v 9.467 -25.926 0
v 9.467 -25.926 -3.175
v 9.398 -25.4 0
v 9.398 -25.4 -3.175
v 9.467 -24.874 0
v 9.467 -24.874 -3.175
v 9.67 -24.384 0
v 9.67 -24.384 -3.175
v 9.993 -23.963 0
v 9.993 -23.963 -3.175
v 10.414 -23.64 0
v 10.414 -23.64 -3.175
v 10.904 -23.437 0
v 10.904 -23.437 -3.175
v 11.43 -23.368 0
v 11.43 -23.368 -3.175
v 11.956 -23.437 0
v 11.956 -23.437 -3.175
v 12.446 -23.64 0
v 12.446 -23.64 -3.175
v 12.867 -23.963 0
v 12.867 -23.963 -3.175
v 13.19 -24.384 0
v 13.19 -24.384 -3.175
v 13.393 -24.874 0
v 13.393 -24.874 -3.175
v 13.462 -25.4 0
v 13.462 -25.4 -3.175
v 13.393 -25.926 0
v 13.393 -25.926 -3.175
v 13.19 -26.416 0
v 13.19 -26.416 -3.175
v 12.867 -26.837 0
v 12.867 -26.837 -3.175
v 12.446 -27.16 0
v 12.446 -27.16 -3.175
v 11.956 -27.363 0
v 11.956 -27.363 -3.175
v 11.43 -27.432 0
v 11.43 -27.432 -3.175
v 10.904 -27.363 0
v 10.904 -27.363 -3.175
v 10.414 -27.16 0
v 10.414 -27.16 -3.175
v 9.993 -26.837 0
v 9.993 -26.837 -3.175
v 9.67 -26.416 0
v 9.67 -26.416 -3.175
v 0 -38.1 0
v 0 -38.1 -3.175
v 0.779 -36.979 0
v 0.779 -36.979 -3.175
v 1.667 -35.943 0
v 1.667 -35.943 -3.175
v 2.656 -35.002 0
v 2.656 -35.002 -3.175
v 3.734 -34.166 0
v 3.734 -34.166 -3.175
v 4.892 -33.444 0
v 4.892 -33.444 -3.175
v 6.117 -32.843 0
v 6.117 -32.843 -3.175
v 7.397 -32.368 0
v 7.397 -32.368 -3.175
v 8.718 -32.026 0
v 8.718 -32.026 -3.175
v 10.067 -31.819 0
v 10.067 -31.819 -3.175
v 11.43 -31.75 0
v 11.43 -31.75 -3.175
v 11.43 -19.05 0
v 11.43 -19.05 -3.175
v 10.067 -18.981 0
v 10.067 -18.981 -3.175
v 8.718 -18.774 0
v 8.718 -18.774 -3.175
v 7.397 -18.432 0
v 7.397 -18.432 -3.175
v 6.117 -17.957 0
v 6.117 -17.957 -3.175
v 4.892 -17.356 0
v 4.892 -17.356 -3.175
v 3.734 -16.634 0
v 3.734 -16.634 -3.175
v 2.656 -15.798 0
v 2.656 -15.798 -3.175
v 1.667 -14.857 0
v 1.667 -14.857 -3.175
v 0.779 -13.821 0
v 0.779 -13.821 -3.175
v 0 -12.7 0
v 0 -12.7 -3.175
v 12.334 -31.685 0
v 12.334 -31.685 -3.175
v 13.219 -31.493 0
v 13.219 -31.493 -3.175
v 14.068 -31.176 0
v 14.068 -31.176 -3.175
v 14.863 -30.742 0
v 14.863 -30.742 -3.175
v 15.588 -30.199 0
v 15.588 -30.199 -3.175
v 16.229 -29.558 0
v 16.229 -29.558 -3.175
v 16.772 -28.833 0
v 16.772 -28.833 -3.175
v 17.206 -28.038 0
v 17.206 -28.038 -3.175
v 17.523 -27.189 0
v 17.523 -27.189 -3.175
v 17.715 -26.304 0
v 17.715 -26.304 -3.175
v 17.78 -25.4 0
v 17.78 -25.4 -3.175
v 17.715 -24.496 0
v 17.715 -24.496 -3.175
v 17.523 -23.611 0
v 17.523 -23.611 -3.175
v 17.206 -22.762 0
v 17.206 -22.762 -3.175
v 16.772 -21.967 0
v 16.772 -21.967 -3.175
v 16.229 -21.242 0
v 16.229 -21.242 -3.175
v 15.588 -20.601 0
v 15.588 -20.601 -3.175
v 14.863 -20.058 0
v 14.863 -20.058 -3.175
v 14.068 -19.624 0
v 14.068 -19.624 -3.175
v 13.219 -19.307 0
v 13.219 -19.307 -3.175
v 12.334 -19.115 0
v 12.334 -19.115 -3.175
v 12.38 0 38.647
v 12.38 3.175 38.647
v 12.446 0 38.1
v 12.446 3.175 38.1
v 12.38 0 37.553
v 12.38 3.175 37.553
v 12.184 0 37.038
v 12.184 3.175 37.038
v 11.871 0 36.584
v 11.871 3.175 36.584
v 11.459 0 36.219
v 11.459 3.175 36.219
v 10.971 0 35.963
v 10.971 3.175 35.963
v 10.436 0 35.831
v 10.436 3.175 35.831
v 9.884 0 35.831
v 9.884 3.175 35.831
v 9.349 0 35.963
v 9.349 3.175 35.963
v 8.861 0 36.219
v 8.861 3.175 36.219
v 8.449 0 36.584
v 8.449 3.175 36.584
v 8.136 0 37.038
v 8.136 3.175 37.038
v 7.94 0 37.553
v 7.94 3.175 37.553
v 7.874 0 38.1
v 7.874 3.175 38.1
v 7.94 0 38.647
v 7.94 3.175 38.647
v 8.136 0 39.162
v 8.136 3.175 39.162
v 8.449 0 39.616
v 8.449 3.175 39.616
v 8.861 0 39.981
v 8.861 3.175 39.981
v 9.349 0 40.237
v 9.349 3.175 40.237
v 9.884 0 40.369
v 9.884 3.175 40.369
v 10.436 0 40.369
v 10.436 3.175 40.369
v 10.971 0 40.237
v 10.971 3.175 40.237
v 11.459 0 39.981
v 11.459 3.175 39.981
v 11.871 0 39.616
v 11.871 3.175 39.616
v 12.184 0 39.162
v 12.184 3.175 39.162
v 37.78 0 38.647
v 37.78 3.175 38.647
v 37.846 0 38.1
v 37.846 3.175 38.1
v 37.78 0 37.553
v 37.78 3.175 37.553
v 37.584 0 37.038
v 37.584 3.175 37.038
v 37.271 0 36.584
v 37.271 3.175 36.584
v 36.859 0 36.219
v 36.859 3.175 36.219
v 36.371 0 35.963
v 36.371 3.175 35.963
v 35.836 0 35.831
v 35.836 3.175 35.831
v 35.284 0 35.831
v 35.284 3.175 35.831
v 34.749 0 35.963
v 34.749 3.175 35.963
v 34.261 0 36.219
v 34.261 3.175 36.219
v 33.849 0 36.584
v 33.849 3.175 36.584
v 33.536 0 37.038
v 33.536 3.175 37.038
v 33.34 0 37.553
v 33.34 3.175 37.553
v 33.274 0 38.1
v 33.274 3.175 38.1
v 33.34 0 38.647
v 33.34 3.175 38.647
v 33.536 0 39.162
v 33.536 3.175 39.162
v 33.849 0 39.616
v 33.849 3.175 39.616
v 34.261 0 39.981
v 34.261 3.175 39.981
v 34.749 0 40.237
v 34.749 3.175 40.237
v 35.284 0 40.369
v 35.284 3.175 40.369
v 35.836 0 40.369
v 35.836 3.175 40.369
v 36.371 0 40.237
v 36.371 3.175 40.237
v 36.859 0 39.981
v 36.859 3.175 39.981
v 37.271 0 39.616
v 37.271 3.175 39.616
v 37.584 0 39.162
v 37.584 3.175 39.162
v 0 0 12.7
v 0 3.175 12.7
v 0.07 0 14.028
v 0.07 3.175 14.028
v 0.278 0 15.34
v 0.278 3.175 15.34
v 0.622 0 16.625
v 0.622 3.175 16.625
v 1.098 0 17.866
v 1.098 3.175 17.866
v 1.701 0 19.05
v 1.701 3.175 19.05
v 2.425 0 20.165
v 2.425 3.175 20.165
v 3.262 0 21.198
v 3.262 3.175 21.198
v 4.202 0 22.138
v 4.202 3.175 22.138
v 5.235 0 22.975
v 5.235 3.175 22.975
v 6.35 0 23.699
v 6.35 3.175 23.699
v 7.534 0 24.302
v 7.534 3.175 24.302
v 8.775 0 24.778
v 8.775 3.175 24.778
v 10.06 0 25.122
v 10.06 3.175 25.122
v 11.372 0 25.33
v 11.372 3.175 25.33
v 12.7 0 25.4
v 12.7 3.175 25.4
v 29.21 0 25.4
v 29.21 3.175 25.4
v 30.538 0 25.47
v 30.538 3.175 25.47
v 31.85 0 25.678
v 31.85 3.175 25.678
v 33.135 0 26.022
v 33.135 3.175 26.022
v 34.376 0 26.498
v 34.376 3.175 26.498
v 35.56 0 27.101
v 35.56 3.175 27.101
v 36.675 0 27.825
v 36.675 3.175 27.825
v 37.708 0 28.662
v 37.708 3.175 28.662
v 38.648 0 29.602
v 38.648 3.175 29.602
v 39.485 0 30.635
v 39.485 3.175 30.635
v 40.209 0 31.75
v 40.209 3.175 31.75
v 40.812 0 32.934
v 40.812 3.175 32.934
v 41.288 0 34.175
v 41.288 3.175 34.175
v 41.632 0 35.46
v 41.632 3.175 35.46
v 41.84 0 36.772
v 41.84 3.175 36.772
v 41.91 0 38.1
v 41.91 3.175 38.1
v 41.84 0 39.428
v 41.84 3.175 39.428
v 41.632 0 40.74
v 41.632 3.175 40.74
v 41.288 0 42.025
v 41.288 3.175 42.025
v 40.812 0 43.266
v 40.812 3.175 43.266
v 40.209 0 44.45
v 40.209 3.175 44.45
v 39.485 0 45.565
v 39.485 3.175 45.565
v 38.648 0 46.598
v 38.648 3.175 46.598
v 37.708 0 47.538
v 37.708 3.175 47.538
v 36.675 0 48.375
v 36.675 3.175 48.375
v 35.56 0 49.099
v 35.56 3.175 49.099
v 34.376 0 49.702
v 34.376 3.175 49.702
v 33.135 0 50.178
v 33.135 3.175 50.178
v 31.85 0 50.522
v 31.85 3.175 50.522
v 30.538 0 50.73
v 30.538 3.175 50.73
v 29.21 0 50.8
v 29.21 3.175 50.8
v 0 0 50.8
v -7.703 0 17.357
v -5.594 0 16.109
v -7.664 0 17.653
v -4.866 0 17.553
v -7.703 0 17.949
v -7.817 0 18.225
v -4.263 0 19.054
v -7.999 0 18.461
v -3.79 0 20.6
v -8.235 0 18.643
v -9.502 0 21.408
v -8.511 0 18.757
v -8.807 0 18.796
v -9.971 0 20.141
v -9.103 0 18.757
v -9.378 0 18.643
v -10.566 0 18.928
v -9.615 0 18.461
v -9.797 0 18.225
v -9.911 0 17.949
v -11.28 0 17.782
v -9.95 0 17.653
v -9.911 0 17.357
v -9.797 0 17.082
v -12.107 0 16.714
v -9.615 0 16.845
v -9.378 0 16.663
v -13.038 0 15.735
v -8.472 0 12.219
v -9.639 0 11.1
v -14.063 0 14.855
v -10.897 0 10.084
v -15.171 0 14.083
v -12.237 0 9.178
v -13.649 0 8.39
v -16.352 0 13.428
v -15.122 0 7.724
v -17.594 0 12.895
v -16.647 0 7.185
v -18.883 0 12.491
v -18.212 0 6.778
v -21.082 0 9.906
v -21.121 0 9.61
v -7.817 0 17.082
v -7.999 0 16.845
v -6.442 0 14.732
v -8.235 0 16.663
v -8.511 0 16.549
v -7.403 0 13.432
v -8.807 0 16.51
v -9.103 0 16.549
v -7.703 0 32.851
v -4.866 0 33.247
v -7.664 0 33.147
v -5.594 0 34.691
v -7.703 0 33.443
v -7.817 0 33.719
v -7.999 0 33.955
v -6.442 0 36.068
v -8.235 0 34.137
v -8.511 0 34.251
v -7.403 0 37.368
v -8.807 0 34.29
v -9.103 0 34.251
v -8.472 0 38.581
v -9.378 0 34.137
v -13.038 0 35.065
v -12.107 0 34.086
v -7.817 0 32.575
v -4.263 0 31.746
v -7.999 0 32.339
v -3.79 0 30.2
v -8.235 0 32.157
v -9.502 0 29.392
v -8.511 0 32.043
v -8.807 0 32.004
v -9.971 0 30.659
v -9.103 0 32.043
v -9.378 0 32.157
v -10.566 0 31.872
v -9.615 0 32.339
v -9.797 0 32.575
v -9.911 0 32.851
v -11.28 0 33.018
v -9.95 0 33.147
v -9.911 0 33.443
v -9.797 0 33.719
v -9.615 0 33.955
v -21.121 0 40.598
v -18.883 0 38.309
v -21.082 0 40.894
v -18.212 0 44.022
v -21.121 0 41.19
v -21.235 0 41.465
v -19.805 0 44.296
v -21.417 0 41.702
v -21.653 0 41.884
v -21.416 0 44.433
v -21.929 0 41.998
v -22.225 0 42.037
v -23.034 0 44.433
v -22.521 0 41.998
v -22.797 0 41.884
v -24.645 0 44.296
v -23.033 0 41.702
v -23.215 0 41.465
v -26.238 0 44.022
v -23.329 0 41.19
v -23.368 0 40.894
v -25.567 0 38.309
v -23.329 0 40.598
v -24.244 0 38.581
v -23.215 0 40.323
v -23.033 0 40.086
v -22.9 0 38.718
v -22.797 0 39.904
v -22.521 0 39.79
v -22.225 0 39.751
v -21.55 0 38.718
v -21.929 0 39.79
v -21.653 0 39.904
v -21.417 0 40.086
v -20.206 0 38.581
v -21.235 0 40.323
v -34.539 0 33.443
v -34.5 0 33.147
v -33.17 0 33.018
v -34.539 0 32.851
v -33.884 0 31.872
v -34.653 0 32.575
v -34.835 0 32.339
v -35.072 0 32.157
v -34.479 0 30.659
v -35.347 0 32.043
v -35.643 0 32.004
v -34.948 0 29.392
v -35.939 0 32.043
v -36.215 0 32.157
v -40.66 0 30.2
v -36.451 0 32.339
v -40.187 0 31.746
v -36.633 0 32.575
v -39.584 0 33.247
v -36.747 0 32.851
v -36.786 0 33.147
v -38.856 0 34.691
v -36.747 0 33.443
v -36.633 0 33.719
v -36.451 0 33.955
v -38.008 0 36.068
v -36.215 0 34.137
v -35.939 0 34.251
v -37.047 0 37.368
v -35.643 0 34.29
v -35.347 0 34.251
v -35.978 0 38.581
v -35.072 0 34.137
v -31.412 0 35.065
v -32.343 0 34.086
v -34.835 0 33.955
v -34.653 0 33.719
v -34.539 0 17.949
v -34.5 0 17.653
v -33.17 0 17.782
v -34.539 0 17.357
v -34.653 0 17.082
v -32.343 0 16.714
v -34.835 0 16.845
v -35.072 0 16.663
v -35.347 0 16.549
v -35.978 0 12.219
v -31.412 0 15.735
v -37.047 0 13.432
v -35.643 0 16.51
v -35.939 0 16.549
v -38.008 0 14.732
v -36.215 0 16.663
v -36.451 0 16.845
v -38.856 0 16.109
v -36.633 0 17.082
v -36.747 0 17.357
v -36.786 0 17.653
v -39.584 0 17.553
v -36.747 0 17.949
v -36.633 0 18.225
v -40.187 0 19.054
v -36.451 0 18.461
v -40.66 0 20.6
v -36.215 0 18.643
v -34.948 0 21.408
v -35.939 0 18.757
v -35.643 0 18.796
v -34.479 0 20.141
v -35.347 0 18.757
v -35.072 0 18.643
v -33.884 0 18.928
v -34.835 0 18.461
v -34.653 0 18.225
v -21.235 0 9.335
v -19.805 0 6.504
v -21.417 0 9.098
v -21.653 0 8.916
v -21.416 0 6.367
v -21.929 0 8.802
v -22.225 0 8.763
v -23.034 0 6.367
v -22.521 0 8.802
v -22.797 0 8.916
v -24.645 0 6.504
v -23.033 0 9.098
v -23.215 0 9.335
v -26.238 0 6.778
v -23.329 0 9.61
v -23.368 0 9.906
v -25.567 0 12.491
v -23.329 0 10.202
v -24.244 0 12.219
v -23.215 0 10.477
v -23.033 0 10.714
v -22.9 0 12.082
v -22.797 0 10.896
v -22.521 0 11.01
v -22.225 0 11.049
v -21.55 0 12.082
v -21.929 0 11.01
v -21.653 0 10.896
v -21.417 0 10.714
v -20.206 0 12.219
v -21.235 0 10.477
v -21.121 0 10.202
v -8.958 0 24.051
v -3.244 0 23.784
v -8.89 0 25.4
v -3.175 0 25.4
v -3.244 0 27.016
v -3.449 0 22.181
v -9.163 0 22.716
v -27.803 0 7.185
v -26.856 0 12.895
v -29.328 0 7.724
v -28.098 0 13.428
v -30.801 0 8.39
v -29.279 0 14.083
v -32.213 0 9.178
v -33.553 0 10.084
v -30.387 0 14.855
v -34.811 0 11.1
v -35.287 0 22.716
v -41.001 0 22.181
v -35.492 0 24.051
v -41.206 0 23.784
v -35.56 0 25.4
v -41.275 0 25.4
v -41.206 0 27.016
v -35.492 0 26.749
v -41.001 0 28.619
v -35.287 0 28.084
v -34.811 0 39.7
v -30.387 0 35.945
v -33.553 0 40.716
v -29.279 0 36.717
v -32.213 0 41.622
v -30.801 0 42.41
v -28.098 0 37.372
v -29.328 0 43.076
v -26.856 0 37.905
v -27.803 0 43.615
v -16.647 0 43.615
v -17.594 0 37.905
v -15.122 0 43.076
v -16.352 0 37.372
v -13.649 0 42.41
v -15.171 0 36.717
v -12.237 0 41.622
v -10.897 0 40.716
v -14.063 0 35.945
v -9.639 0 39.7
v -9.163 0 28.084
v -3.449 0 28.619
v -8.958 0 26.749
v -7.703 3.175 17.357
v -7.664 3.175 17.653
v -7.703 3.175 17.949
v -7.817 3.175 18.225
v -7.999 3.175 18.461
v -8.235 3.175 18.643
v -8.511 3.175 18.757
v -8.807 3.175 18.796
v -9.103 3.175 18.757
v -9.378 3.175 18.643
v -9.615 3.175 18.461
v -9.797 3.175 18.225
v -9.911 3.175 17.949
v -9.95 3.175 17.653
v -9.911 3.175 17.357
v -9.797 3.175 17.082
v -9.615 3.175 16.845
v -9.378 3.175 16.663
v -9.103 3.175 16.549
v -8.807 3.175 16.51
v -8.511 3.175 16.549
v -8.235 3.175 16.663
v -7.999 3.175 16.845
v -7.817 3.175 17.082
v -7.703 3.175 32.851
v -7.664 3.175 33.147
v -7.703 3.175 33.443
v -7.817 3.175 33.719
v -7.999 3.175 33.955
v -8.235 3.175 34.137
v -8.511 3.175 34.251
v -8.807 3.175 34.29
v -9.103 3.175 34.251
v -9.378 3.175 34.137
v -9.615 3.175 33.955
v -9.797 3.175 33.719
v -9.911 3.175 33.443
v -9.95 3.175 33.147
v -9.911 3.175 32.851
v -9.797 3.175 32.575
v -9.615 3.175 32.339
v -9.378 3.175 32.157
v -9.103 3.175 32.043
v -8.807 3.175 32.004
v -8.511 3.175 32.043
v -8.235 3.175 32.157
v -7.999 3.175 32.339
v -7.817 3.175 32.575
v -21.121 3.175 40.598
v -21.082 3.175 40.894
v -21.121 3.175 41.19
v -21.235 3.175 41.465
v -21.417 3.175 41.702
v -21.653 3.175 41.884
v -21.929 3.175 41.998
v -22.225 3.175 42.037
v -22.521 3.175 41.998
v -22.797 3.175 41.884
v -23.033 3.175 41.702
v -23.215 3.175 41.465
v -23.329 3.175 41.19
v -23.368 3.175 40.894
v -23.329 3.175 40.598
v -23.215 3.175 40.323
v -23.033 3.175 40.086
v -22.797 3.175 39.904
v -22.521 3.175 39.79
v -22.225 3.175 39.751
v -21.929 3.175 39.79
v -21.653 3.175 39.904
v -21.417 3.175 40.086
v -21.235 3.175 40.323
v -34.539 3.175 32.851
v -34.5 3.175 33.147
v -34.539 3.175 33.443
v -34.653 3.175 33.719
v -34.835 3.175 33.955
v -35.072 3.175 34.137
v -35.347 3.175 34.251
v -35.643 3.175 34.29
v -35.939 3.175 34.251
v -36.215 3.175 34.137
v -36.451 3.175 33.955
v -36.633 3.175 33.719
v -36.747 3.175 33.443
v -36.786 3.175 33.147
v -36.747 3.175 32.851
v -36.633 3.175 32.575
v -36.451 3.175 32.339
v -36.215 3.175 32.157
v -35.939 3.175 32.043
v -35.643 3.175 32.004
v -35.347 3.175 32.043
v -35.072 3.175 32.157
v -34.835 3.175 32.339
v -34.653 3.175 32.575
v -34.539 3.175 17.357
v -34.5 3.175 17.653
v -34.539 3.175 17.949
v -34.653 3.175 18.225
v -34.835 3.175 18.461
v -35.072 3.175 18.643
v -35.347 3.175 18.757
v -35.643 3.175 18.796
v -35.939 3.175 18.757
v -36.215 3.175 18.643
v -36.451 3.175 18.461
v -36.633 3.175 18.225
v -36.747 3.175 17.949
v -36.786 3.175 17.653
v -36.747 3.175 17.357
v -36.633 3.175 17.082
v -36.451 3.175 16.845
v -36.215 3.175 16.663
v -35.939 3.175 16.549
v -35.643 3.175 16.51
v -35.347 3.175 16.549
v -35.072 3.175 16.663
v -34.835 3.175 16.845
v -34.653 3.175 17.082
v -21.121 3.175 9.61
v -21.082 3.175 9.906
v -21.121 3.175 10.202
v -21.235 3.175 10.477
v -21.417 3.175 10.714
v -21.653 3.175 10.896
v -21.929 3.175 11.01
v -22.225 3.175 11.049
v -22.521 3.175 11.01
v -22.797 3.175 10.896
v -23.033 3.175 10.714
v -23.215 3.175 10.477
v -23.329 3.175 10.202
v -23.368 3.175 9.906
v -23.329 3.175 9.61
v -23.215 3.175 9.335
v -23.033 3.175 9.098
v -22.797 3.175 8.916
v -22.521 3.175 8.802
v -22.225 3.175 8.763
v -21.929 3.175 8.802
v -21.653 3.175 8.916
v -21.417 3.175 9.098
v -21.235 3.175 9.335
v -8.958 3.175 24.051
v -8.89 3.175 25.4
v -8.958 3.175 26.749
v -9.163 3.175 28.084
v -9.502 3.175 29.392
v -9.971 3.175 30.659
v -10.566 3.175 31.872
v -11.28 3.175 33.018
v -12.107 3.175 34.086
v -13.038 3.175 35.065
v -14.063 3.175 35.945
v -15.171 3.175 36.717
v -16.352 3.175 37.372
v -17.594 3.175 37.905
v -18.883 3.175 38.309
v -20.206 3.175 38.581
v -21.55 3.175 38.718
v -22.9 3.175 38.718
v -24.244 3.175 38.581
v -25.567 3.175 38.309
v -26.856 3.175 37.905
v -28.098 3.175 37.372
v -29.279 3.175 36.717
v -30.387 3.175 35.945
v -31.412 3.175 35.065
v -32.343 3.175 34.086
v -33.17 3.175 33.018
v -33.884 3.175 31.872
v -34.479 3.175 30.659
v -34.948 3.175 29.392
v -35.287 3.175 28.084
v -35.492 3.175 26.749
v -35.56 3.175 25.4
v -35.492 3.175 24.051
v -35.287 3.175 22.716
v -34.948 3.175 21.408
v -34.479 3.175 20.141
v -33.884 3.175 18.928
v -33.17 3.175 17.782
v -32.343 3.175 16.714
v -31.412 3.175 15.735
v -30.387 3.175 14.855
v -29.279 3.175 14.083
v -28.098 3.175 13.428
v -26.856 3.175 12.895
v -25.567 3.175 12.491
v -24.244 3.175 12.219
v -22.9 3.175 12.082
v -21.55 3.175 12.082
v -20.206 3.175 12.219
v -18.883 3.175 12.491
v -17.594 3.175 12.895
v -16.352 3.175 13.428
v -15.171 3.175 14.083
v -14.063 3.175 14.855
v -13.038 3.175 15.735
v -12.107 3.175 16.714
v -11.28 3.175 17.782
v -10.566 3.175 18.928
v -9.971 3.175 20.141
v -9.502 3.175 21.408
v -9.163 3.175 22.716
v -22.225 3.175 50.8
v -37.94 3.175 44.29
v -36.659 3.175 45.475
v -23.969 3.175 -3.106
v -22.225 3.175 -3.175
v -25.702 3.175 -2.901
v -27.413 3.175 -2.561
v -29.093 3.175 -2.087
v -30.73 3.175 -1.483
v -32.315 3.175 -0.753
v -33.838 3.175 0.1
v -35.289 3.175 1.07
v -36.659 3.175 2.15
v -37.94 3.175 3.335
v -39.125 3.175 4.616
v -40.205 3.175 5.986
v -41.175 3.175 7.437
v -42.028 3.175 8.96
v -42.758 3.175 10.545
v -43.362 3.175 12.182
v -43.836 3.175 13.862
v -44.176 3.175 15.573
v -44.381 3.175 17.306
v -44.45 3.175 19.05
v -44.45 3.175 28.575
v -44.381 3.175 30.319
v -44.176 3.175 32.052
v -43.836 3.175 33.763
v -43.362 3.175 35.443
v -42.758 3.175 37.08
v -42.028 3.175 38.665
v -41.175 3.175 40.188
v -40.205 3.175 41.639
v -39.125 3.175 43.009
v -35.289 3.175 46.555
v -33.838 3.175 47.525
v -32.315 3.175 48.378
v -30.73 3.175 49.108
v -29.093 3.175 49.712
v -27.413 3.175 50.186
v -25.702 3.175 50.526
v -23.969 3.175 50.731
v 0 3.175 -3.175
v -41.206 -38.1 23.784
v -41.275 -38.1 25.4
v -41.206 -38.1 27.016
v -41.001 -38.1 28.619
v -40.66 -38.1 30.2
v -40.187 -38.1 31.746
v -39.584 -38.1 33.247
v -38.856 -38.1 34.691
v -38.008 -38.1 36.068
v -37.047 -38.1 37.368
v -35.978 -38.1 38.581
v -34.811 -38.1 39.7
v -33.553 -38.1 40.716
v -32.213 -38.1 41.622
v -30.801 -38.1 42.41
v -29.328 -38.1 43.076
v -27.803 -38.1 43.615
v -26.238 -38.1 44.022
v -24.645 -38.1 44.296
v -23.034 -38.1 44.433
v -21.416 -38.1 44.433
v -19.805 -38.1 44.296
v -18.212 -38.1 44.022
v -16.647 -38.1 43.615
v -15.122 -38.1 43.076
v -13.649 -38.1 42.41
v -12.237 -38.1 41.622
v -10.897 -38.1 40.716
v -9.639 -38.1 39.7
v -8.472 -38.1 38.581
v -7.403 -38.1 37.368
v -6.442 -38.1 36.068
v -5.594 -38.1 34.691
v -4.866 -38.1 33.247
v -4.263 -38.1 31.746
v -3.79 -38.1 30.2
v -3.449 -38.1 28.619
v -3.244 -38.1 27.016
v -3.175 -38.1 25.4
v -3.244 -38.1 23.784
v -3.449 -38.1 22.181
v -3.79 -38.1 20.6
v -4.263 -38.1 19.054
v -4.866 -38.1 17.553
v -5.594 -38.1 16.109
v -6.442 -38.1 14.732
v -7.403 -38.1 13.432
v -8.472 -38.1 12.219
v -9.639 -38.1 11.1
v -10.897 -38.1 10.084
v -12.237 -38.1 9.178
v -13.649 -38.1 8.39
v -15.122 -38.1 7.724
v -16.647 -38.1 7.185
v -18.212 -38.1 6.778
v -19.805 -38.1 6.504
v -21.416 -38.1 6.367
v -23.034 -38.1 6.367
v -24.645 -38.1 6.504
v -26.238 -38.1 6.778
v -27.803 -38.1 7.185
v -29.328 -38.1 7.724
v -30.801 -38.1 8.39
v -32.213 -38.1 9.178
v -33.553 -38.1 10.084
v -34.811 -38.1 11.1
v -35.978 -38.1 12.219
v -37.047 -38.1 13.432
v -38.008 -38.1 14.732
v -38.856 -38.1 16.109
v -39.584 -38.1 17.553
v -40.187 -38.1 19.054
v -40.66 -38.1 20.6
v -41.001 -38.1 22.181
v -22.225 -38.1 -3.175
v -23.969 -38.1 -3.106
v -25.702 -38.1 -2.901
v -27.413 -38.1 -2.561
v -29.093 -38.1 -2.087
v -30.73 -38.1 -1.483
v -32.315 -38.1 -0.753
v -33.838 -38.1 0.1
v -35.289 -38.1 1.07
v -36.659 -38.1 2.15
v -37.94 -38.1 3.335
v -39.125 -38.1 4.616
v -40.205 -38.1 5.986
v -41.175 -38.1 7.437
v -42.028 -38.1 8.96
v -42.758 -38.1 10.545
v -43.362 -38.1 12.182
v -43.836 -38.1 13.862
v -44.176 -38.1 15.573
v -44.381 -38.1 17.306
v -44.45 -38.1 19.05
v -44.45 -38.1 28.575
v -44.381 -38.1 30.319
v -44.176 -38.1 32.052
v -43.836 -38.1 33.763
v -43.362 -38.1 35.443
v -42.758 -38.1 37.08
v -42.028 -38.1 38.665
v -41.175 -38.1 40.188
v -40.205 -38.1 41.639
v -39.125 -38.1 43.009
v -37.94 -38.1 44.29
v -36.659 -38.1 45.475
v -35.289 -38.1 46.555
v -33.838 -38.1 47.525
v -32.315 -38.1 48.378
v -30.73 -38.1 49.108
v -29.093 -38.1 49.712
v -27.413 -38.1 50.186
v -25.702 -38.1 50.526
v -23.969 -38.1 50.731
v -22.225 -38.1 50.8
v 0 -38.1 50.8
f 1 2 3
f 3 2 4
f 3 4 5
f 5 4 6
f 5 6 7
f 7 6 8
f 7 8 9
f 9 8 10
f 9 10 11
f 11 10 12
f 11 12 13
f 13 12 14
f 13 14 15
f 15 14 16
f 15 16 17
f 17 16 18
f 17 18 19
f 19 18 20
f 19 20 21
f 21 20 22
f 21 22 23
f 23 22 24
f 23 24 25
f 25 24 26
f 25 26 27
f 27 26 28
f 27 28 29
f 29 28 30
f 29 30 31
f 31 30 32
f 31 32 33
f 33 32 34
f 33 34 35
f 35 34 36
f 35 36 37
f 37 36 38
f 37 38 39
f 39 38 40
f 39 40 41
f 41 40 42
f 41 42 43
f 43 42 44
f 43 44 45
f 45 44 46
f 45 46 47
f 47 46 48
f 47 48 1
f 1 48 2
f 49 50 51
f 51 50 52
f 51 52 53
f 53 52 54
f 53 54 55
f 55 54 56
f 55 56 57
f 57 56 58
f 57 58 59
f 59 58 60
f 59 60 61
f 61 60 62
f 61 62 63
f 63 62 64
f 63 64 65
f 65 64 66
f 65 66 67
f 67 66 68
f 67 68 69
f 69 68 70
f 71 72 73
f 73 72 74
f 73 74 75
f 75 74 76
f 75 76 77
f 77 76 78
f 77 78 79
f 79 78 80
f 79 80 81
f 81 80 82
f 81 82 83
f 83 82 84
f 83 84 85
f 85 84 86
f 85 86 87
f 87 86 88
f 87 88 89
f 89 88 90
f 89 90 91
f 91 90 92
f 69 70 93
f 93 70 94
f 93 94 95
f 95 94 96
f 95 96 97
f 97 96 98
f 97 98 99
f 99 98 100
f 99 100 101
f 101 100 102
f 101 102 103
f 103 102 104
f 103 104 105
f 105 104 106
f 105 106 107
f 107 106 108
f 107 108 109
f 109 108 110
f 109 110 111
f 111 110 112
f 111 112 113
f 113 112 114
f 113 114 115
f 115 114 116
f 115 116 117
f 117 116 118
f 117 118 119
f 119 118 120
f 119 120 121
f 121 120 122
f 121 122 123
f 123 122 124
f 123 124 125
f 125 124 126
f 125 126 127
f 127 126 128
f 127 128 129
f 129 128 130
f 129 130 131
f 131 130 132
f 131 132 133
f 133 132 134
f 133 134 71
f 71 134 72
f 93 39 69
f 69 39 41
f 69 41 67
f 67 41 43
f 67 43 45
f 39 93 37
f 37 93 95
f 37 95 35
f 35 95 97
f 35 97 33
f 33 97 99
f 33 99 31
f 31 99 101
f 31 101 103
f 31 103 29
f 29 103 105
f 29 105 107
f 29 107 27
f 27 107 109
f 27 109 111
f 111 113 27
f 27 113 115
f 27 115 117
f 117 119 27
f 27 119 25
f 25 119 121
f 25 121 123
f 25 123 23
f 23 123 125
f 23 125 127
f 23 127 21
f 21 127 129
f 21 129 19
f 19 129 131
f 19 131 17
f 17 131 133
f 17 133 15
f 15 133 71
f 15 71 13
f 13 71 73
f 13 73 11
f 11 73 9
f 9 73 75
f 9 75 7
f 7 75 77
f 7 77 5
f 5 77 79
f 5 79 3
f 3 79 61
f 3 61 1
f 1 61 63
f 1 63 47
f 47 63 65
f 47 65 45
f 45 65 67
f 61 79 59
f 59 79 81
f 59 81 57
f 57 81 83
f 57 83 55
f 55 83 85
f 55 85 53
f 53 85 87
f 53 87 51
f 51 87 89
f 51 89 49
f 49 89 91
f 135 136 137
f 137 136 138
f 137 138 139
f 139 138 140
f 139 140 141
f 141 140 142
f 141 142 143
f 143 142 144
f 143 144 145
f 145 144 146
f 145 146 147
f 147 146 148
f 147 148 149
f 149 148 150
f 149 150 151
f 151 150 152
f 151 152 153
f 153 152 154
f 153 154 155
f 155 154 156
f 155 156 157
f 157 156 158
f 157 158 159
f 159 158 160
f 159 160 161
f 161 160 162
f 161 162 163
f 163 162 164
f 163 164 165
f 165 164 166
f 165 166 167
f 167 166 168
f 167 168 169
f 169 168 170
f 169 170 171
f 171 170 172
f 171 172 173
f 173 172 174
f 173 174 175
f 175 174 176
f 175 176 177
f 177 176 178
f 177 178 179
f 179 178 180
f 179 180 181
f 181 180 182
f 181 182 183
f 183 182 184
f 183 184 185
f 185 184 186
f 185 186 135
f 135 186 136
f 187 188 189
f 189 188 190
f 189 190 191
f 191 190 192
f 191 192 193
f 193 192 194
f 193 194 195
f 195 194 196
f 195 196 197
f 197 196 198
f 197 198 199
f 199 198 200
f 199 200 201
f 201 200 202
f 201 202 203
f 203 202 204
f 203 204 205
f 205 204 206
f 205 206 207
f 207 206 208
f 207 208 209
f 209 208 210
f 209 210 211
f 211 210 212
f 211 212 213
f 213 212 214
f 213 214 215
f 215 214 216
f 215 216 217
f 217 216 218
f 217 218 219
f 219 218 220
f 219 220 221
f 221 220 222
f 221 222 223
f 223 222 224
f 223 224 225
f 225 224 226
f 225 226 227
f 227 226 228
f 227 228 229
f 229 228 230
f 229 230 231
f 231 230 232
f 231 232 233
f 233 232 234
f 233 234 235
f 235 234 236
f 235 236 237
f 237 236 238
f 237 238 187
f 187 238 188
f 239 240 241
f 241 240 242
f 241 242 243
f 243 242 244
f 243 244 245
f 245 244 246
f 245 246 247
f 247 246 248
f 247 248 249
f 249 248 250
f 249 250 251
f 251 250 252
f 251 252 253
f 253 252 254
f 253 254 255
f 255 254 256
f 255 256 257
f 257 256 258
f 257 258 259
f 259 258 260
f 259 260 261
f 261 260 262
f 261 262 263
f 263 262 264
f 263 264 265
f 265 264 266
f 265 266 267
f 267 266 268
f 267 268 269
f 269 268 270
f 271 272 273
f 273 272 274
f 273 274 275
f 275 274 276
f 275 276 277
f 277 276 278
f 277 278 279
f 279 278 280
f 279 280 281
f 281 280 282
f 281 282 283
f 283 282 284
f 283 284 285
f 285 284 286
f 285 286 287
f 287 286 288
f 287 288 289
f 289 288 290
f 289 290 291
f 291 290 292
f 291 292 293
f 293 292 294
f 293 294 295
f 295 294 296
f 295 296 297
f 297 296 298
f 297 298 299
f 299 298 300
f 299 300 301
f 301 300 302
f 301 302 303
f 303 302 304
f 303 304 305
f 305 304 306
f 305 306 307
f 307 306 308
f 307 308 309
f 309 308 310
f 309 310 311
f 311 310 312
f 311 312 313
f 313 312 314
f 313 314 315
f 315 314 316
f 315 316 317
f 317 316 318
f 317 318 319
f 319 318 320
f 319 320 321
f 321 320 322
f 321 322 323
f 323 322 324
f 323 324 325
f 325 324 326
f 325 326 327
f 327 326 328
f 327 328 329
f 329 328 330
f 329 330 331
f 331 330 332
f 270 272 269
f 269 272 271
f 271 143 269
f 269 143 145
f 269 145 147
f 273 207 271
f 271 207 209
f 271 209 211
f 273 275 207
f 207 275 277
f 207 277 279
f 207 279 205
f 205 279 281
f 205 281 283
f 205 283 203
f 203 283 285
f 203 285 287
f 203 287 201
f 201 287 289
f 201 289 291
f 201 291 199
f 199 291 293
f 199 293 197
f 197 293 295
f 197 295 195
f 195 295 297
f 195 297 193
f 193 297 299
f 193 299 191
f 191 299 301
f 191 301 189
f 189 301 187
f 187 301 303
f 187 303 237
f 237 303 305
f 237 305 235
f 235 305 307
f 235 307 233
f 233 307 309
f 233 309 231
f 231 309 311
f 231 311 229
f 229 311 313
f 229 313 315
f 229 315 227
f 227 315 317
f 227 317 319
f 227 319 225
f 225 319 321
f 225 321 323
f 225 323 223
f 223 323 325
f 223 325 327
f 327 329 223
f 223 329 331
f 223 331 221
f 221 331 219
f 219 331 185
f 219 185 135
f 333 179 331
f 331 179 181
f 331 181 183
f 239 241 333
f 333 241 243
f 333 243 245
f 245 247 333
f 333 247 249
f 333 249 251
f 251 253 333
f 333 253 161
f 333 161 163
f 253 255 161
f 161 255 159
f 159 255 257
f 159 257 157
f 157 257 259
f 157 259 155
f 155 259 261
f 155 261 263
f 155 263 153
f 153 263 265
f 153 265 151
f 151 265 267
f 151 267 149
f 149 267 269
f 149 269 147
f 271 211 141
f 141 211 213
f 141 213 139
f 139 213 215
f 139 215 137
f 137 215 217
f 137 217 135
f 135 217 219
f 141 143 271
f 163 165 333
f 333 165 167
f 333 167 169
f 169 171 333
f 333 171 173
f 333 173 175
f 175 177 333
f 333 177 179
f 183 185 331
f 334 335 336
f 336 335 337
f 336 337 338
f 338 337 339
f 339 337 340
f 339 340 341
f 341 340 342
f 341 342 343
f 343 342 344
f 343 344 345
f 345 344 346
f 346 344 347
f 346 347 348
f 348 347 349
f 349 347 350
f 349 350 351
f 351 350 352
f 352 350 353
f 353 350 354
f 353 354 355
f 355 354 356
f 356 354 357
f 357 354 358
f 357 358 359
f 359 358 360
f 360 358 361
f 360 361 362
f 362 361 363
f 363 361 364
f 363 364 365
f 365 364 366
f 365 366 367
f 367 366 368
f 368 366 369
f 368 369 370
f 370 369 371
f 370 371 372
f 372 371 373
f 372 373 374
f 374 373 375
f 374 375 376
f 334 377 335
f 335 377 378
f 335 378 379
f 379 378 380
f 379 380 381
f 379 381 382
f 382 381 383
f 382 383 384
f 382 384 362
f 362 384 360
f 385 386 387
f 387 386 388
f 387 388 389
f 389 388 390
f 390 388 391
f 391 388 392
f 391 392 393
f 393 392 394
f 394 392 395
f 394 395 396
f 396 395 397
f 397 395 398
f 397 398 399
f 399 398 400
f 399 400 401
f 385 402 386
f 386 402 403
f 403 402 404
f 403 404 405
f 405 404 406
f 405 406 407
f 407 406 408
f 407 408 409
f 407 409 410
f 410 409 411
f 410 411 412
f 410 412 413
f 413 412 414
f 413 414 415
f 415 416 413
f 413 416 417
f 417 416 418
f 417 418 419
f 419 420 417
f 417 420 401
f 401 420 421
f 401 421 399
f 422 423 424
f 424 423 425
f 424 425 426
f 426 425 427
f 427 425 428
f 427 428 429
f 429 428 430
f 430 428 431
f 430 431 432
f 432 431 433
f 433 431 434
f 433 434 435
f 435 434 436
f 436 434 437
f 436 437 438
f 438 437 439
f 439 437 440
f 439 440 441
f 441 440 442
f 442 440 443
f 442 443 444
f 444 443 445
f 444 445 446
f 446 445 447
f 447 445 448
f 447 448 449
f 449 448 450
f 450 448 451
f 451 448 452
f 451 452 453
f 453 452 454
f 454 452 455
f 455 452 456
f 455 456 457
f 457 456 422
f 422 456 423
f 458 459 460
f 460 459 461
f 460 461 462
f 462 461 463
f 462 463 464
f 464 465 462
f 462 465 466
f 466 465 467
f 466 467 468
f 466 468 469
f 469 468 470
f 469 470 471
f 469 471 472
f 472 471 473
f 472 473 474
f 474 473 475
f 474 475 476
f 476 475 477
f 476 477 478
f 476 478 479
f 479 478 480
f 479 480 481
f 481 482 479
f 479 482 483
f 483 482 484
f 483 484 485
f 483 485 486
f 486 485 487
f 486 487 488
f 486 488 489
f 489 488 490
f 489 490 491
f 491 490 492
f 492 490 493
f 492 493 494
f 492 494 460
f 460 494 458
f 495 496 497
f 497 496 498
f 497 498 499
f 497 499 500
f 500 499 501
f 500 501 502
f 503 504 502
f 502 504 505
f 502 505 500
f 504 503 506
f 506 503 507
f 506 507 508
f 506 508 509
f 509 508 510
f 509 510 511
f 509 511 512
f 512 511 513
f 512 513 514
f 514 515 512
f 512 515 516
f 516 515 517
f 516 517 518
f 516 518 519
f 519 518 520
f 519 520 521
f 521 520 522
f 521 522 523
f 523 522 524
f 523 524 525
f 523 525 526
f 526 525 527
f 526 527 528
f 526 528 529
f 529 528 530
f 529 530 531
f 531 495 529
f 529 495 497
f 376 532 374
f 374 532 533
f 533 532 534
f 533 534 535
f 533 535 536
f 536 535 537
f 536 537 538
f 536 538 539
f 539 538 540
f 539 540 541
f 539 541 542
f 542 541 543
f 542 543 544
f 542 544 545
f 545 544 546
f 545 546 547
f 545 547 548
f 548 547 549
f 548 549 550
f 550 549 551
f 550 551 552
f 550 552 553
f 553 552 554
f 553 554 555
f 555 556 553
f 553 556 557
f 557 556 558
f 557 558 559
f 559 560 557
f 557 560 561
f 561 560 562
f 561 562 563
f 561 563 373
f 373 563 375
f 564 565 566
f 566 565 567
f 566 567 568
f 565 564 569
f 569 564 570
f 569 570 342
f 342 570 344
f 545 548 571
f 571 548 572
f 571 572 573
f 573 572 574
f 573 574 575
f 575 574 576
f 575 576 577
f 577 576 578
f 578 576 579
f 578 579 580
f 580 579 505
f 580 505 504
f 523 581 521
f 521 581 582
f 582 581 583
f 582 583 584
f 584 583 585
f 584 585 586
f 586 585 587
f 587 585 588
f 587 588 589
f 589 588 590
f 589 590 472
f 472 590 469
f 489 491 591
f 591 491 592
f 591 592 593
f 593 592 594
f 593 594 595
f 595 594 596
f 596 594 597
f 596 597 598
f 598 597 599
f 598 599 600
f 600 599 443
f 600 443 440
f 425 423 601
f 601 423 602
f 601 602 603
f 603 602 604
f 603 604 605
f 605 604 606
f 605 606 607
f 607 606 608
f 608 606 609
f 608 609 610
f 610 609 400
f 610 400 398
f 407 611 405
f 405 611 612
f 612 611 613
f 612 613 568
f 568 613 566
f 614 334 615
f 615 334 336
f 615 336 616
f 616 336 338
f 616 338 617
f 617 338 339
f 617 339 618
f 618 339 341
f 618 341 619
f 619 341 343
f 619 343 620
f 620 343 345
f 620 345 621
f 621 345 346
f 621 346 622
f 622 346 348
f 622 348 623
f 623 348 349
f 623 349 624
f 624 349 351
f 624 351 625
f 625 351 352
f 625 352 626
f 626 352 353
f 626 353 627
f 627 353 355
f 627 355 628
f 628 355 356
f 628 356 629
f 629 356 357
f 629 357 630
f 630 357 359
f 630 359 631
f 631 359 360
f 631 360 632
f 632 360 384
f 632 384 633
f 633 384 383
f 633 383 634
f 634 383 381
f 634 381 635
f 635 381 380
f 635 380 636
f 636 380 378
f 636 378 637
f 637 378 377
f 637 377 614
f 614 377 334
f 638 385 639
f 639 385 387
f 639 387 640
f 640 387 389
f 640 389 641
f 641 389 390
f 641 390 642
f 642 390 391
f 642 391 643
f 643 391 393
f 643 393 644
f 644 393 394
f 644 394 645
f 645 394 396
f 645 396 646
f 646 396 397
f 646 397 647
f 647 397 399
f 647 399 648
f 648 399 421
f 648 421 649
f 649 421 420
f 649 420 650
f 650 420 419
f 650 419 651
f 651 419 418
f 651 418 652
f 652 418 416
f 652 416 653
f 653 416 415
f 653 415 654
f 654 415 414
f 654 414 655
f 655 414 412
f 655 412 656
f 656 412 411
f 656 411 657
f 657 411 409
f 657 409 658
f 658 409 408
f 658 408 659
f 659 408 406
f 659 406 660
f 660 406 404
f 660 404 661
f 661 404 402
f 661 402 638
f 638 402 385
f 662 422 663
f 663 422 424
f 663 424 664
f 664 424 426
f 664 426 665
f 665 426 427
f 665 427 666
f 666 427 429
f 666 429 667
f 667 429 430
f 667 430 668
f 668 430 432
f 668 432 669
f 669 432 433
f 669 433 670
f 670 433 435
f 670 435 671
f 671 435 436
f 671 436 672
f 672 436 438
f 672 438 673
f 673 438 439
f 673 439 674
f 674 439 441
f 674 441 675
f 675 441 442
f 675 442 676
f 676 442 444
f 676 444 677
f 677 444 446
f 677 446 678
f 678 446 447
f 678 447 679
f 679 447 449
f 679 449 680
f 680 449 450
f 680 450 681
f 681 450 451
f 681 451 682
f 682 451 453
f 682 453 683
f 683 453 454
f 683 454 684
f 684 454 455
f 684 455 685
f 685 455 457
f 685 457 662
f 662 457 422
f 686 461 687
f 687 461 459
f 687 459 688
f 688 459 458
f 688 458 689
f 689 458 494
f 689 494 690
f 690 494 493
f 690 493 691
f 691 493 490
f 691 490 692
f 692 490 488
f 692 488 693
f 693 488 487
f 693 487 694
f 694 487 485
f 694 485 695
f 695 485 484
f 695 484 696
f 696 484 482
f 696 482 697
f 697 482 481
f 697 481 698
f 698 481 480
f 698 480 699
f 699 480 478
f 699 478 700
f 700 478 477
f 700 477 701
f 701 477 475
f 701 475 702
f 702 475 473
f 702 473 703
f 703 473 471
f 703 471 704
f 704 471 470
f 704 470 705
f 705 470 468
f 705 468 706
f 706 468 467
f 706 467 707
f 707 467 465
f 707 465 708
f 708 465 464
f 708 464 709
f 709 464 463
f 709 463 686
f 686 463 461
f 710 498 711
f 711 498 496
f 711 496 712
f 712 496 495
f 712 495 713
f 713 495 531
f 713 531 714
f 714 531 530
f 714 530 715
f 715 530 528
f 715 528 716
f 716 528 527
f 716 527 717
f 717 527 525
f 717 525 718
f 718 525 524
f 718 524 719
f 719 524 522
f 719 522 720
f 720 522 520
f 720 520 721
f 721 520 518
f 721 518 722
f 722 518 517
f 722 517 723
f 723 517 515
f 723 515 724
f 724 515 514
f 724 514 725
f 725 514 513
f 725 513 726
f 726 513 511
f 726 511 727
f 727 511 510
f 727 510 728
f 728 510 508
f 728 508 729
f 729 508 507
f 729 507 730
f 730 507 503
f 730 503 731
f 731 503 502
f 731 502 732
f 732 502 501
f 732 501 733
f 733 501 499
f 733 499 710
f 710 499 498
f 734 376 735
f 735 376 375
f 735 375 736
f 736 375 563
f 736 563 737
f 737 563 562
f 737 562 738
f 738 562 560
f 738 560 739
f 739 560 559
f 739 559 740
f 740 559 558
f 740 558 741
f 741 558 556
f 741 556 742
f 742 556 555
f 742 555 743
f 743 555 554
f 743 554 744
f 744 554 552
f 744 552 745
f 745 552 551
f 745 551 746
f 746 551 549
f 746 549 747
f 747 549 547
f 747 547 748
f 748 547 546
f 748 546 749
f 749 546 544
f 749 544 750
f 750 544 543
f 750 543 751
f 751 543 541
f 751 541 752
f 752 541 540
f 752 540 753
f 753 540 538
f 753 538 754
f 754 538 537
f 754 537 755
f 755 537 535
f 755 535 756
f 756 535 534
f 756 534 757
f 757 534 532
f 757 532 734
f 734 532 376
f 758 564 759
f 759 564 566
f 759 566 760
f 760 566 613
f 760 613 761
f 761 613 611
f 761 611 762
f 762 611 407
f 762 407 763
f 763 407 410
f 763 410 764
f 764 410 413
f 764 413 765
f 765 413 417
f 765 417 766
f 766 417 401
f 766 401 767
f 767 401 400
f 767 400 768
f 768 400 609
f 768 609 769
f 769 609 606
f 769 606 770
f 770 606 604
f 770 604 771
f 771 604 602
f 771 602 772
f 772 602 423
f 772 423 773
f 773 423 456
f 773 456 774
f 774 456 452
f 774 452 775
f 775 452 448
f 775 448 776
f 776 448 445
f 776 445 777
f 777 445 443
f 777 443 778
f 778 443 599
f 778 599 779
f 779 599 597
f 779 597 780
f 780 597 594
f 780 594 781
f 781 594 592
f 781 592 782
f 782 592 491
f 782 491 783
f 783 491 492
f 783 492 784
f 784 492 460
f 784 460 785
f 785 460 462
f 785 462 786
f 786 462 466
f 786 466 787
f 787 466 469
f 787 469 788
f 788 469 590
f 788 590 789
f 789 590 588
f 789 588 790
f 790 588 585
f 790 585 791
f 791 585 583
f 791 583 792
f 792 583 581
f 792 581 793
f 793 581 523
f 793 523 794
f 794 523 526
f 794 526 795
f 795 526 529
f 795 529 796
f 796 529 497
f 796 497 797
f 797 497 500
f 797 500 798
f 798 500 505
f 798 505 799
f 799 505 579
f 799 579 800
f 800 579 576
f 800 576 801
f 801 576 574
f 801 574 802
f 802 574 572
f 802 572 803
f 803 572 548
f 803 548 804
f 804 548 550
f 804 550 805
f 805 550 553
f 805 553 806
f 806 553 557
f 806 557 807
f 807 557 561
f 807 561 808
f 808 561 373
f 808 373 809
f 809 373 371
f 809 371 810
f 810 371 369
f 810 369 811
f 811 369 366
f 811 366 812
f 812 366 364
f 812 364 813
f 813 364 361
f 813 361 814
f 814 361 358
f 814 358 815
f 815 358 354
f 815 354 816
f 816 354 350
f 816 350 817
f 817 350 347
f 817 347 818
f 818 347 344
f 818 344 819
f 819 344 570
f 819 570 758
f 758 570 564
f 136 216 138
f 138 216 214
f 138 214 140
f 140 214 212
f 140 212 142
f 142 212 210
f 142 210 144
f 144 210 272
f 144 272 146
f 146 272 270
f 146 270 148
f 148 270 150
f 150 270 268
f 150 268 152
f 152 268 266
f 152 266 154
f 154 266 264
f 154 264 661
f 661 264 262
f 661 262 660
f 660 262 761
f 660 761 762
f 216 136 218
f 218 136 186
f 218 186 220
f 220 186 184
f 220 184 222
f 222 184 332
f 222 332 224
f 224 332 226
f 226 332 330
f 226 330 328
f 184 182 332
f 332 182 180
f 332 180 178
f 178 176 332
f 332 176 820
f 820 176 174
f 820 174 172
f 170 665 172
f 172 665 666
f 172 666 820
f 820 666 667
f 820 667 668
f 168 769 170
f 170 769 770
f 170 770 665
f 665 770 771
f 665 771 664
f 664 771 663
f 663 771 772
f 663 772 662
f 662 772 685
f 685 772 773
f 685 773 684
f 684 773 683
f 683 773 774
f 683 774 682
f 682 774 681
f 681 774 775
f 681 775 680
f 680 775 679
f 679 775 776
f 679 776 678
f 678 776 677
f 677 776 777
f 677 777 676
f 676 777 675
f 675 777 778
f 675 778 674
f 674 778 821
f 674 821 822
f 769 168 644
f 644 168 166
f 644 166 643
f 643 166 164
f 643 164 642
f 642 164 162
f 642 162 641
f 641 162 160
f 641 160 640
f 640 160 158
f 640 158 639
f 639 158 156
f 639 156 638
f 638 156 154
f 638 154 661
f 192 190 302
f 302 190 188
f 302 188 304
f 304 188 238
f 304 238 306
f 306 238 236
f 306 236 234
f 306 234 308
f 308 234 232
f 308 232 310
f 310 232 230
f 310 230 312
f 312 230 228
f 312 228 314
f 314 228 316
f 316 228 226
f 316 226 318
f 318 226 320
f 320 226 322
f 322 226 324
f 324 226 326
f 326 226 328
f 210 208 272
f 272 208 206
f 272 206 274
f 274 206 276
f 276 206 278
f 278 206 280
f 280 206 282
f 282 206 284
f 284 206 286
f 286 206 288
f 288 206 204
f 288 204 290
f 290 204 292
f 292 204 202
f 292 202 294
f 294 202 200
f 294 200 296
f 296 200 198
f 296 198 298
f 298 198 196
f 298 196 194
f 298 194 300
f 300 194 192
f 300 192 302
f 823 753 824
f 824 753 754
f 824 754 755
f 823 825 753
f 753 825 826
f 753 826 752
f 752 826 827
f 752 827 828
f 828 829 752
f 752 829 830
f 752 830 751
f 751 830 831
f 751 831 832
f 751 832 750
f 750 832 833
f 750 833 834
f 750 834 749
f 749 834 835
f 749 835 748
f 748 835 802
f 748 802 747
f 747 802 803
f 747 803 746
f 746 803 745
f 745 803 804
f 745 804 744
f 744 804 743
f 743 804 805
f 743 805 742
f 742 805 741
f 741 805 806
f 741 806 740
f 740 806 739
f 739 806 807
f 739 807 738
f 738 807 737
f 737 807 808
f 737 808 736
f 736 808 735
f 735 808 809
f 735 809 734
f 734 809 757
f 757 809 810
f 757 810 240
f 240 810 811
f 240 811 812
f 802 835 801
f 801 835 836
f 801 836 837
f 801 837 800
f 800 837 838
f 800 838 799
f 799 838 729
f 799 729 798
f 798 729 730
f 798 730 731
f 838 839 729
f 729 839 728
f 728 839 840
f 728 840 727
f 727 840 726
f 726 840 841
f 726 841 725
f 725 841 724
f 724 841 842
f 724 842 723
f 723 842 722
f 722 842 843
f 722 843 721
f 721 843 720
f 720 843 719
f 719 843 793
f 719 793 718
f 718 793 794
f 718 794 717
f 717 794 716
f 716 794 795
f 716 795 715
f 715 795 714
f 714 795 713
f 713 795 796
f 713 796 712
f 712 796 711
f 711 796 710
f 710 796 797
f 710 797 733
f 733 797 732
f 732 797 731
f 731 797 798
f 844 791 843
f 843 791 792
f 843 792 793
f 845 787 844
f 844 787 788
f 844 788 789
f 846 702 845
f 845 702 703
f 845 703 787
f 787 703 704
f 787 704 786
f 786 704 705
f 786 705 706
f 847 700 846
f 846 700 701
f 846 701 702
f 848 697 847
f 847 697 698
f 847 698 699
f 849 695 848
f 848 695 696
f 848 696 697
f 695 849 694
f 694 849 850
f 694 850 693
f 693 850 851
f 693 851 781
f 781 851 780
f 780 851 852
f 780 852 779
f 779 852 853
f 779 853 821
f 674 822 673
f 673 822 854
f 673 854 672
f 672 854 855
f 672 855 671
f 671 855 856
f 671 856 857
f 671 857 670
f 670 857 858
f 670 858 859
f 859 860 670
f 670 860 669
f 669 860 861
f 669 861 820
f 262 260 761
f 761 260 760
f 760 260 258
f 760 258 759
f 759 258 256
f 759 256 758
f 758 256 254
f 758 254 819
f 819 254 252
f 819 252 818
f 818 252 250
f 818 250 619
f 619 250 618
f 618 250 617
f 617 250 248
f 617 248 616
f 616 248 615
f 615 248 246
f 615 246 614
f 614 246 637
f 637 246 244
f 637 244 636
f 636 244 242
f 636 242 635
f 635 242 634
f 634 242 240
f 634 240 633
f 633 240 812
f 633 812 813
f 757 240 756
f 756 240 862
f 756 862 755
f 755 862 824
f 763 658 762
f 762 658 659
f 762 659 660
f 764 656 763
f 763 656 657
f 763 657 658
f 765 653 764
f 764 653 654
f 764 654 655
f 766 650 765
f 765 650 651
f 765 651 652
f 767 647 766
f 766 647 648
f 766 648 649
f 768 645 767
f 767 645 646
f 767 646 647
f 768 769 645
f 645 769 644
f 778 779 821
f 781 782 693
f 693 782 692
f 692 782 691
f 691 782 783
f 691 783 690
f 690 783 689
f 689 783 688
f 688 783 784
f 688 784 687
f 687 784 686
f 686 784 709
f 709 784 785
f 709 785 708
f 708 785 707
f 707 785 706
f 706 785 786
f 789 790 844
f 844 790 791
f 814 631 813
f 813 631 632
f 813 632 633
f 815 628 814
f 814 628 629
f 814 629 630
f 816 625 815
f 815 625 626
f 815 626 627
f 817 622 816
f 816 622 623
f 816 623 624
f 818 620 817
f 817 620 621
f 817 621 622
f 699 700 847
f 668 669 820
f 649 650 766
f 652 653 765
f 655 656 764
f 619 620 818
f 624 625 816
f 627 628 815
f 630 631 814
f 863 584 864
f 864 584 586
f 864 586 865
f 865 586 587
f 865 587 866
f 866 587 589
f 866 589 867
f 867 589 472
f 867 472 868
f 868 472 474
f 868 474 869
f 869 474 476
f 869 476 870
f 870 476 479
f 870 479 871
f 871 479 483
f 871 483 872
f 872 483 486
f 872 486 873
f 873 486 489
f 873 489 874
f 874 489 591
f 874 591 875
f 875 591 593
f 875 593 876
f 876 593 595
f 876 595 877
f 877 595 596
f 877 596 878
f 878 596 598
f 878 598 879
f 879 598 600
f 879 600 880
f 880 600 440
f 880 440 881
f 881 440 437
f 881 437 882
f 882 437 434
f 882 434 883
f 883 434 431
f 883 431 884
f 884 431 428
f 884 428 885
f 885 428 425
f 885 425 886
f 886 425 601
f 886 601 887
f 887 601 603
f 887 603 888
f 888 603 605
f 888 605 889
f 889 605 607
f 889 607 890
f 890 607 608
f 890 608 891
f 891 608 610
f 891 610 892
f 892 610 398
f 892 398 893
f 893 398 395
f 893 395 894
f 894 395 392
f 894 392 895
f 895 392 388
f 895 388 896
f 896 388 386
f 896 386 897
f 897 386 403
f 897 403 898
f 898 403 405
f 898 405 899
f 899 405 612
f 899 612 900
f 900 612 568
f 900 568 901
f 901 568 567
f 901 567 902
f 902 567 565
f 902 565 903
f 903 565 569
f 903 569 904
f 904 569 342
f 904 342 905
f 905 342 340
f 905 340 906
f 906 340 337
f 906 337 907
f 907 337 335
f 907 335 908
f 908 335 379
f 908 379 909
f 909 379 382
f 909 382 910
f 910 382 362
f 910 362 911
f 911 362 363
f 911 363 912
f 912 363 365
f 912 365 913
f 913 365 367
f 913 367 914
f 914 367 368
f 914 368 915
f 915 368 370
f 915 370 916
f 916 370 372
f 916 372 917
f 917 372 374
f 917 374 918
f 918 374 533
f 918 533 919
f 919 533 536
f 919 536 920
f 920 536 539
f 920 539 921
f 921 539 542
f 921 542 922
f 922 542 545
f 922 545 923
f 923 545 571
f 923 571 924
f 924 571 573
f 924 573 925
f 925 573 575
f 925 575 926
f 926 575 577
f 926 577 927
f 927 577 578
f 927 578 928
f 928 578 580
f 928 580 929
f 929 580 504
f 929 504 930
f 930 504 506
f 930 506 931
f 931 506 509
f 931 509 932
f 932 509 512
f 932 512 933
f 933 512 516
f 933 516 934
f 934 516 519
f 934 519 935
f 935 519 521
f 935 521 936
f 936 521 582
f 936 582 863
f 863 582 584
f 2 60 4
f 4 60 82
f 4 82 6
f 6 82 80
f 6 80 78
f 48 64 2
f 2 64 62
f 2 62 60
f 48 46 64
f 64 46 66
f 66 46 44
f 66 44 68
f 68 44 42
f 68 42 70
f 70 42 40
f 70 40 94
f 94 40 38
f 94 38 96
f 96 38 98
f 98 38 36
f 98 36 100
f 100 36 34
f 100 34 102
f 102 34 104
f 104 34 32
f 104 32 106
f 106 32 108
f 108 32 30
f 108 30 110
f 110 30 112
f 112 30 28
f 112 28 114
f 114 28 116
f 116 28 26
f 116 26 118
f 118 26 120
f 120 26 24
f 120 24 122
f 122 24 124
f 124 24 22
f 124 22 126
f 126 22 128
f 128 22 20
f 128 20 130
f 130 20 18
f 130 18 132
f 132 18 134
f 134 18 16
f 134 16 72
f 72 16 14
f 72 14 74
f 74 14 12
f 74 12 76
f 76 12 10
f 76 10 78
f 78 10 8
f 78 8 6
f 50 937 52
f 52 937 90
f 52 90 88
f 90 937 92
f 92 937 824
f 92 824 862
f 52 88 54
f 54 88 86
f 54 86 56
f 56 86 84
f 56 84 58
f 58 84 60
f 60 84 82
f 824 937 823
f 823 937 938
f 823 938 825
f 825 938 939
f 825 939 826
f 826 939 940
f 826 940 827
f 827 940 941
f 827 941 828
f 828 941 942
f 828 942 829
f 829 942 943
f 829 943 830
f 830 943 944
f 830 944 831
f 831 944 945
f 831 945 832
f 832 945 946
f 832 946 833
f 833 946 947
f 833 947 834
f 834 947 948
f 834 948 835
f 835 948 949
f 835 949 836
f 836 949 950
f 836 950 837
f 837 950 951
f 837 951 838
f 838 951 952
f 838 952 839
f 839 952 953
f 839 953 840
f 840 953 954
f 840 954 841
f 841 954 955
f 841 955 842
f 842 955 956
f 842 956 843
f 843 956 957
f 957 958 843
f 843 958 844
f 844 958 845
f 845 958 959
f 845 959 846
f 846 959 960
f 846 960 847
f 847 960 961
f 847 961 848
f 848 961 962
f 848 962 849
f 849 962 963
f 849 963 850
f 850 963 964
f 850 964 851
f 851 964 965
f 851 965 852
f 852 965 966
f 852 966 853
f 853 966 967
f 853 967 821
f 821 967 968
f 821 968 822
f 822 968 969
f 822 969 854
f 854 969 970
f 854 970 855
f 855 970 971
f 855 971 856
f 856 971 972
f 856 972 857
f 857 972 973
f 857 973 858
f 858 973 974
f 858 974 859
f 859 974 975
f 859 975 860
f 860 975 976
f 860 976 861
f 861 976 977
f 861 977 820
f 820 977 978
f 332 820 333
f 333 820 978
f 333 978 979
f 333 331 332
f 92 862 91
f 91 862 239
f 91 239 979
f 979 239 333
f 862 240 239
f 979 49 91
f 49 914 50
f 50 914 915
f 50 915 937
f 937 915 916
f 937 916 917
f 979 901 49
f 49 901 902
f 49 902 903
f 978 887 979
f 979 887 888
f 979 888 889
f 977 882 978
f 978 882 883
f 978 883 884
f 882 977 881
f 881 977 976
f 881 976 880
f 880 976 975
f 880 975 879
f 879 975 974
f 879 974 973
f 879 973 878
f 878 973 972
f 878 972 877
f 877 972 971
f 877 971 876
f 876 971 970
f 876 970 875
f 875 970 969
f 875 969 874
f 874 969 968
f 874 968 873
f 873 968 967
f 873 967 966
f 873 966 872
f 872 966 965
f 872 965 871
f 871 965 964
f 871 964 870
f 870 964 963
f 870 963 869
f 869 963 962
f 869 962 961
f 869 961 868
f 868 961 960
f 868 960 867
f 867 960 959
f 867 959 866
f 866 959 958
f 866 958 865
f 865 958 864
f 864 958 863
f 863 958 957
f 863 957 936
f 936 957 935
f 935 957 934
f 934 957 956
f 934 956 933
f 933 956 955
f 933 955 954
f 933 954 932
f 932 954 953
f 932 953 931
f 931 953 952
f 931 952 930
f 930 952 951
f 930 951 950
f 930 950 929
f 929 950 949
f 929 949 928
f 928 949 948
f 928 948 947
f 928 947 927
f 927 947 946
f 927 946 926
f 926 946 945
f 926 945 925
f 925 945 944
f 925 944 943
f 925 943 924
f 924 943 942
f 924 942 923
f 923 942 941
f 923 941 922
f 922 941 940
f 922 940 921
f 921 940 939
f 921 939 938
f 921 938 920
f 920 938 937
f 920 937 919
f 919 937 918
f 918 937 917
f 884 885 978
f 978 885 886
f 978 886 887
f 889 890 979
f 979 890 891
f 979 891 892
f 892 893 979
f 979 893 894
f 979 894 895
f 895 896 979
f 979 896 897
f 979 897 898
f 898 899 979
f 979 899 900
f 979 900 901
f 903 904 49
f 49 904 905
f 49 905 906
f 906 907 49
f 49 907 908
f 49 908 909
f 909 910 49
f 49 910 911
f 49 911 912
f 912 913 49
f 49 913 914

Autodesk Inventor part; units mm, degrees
ref_plane "YZ Plane" through (0, 0, 0) normal (1, 0, 0) x (0, 1, 0)
ref_plane "XZ Plane" through (0, 0, 0) normal (0, 1, 0) x (-1, 0, 0)
ref_plane "XY Plane" through (0, 0, 0) normal (0, 0, 1) x (1, 0, 0)
sketch "Sketch1" plane through (0, 0, 0) normal (0, 1, 0) x (-1, 0, 0)
  line L0 (0, 0) -> (44.45, 0)
  line L1 (44.45, 0) -> (44.45, 50.8)
  line L2 (44.45, 50.8) -> (0, 50.8)
  line L3 (0, 50.8) -> (0, 0)
  circle A0 centre (22.225, 25.4) radius 19.05
  line L4 (44.45, 25.4) -> (0, 25.4) construction
  line L5 (22.225, 50.8) -> (22.225, 0) construction
  line L6 (44.45, 0) -> (44.45, -3.175)
  line L7 (44.45, -3.175) -> (0, -3.175)
  line L8 (0, -3.175) -> (0, 0)
  arc A1 (44.45, 28.575) -> (22.225, 50.8) centre (22.225, 28.575) ccw
  arc A2 (22.225, -3.175) -> (44.45, 19.05) centre (22.225, 19.05) ccw
  line L9 (22.225, -3.175) -> (22.225, 0)
  dimension "d1" = 38.1
  dimension "d2" = 50.8
  dimension "d22" = 44.45
  dimension "d37" = 3.175
extrude "Extrusion1" add sketch "Sketch1" against normal blind 38.1 contours L3 L2 A1 L1 A2 L0 | L0 L9 L7 L8 | L0 A2 L9
sketch "Sketch3" plane through (0, 0, 0) normal (0, 1, 0) x (1, 0, 0)
  line L0 (-44.45, -19.05) -> (-44.45, -28.575) projected
  line L1 (-22.225, -50.8) -> (0, -50.8) projected
  line L2 (0, -50.8) -> (0, 3.175) projected
  circle A0 centre (-22.225, -25.4) radius 19.05 projected
  circle A1 centre (-22.225, -25.4) radius 13.335
  circle A2 centre (-22.225, -9.906) radius 1.143
  circle A3 centre (-35.6432, -17.653) radius 1.143
  circle A4 centre (-35.6432, -33.147) radius 1.143
  circle A5 centre (-22.225, -40.894) radius 1.143
  circle A6 centre (-8.8068, -33.147) radius 1.143
  circle A7 centre (-8.8068, -17.653) radius 1.143
  line L3 (0, 3.175) -> (-22.225, 3.175) projected
  arc A8 (-22.225, 3.175) -> (-44.45, -19.05) centre (-22.225, -19.05) ccw projected
  arc A9 (-44.45, -28.575) -> (-22.225, -50.8) centre (-22.225, -28.575) ccw projected
  point P0 (0, 0)
  dimension "d6" = 26.67
  dimension "d7" = 2.286
  dimension "d8" = 15.494
  dimension "d11" = 360
extrude "Extrusion2" add sketch "Sketch3" along normal blind 3.175 contours A8 L3 L2 L1 A9 L0 | A0
sketch "Sketch4" plane through (0, 3.175, 0) normal (0, 1, 0) x (1, 0, 0)
  line L0 (-22.225, -50.8) -> (0, -50.8) projected
  line L1 (0, -50.8) -> (0, 3.175) projected
  line L2 (-44.45, -19.05) -> (-44.45, -28.575) projected
  circle A0 centre (-22.225, -25.4) radius 13.335 projected
  circle A1 centre (-22.225, -9.906) radius 1.143 projected
  circle A2 centre (-35.6432, -17.653) radius 1.143 projected
  circle A3 centre (-35.6432, -33.147) radius 1.143 projected
  circle A4 centre (-22.225, -40.894) radius 1.143 projected
  circle A5 centre (-8.8068, -33.147) radius 1.143 projected
  circle A6 centre (-8.8068, -17.653) radius 1.143 projected
  line L3 (0, -25.4) -> (41.91, -25.4)
  line L4 (41.91, -25.4) -> (41.91, -50.8)
  line L5 (41.91, -50.8) -> (0, -50.8)
  line L6 (0, -50.8) -> (0, -25.4)
  circle A7 centre (10.16, -38.1) radius 2.286
  circle A8 centre (35.56, -38.1) radius 2.286
  line L7 (0, -38.1) -> (41.91, -38.1) construction
  arc A9 (29.21, -50.8) -> (29.21, -25.4) centre (29.21, -38.1) ccw
  arc A10 (0, -12.7) -> (12.7, -25.4) centre (12.7, -12.7) ccw
  arc A11 (-22.225, 3.175) -> (-44.45, -19.05) centre (-22.225, -19.05) ccw projected
  arc A12 (-44.45, -28.575) -> (-22.225, -50.8) centre (-22.225, -28.575) ccw projected
  line L8 (0, 3.175) -> (-22.225, 3.175) projected
  point P0 (0, 0)
  point P1 (0, -50.8)
  dimension "d15" = 10.16
  dimension "d16" = 25.4
  dimension "d17" = 4.572
  dimension "d18" = 25.4
  dimension "d19" = 6.35
  dimension "d30" = 12.7
extrude "Extrusion3" add sketch "Sketch4" against normal blind 3.175 contours L1 L3 A9 L5 | L1 A10 L3
sketch "Sketch6" plane through (0, -38.1, -3.175) normal (0, 0, -1) x (-1, 0, 0)
  line L0 (0, 0) -> (0, 41.275) projected
  line L1 (44.45, 0) -> (0, 0) projected
  line L2 (0, 41.275) -> (44.45, 41.275) projected
  line L3 (0, 19.05) -> (-17.78, 19.05)
  line L4 (-17.78, 19.05) -> (-17.78, 6.35)
  line L5 (-17.78, 6.35) -> (0, 6.35)
  line L6 (0, 6.35) -> (0, 19.05)
  circle A0 centre (-11.43, 12.7) radius 2.032
  line L7 (0, 12.7) -> (-17.78, 12.7) construction
  circle A1 centre (-11.43, 12.7) radius 6.35
  arc A2 (0, 0) -> (-11.43, 6.35) centre (-11.43, -7.112) ccw
  line L8 (0, 0) -> (0, 41.275) projected
  arc A3 (-11.43, 19.05) -> (0, 25.4) centre (-11.43, 32.512) ccw
  line L9 (44.45, 41.275) -> (44.45, 0) projected
  point P0 (0, 38.1)
  point P1 (0, 25.4)
  dimension "d24" = 11.43
  dimension "d25" = 4.064
  dimension "d26" = 6.35
  dimension "d27" = 6.35
  dimension "d36" = 25.4
extrude "Extrusion4" add sketch "Sketch6" against normal blind 3.175 contours A2 L5 L0 | L5 A1 L3 L0 | A1 | L3 A3 L0
fillet "Fillet2" [suppressed]
ref_plane "Work Plane1" through (0, -63.5, 0) normal (0, -1, 0) x (1, 0, 0)
mirror "Mirror1" about plane through (0, -63.5, 0) normal (0, -1, 0) of "Extrusion4", "Extrusion3", "Extrusion2", "Extrusion1"
sketch "Sketch7" plane through (0, -63.5, 0) normal (0, -1, 0) x (1, 0, 0)
  line L0 (-66.3836, -28.6153) -> (65.8055, -28.6153)
  line L1 (65.8055, -28.6153) -> (65.8055, 56.7488)
  line L2 (65.8055, 56.7488) -> (-66.3836, 56.7488)
  line L3 (-66.3836, 56.7488) -> (-66.3836, -28.6153)
  point P0 (0, 0)
extrude "Extrusion5" cut sketch "Sketch7" along normal through all
properties part number "Motor Mount right_3DPrint"
